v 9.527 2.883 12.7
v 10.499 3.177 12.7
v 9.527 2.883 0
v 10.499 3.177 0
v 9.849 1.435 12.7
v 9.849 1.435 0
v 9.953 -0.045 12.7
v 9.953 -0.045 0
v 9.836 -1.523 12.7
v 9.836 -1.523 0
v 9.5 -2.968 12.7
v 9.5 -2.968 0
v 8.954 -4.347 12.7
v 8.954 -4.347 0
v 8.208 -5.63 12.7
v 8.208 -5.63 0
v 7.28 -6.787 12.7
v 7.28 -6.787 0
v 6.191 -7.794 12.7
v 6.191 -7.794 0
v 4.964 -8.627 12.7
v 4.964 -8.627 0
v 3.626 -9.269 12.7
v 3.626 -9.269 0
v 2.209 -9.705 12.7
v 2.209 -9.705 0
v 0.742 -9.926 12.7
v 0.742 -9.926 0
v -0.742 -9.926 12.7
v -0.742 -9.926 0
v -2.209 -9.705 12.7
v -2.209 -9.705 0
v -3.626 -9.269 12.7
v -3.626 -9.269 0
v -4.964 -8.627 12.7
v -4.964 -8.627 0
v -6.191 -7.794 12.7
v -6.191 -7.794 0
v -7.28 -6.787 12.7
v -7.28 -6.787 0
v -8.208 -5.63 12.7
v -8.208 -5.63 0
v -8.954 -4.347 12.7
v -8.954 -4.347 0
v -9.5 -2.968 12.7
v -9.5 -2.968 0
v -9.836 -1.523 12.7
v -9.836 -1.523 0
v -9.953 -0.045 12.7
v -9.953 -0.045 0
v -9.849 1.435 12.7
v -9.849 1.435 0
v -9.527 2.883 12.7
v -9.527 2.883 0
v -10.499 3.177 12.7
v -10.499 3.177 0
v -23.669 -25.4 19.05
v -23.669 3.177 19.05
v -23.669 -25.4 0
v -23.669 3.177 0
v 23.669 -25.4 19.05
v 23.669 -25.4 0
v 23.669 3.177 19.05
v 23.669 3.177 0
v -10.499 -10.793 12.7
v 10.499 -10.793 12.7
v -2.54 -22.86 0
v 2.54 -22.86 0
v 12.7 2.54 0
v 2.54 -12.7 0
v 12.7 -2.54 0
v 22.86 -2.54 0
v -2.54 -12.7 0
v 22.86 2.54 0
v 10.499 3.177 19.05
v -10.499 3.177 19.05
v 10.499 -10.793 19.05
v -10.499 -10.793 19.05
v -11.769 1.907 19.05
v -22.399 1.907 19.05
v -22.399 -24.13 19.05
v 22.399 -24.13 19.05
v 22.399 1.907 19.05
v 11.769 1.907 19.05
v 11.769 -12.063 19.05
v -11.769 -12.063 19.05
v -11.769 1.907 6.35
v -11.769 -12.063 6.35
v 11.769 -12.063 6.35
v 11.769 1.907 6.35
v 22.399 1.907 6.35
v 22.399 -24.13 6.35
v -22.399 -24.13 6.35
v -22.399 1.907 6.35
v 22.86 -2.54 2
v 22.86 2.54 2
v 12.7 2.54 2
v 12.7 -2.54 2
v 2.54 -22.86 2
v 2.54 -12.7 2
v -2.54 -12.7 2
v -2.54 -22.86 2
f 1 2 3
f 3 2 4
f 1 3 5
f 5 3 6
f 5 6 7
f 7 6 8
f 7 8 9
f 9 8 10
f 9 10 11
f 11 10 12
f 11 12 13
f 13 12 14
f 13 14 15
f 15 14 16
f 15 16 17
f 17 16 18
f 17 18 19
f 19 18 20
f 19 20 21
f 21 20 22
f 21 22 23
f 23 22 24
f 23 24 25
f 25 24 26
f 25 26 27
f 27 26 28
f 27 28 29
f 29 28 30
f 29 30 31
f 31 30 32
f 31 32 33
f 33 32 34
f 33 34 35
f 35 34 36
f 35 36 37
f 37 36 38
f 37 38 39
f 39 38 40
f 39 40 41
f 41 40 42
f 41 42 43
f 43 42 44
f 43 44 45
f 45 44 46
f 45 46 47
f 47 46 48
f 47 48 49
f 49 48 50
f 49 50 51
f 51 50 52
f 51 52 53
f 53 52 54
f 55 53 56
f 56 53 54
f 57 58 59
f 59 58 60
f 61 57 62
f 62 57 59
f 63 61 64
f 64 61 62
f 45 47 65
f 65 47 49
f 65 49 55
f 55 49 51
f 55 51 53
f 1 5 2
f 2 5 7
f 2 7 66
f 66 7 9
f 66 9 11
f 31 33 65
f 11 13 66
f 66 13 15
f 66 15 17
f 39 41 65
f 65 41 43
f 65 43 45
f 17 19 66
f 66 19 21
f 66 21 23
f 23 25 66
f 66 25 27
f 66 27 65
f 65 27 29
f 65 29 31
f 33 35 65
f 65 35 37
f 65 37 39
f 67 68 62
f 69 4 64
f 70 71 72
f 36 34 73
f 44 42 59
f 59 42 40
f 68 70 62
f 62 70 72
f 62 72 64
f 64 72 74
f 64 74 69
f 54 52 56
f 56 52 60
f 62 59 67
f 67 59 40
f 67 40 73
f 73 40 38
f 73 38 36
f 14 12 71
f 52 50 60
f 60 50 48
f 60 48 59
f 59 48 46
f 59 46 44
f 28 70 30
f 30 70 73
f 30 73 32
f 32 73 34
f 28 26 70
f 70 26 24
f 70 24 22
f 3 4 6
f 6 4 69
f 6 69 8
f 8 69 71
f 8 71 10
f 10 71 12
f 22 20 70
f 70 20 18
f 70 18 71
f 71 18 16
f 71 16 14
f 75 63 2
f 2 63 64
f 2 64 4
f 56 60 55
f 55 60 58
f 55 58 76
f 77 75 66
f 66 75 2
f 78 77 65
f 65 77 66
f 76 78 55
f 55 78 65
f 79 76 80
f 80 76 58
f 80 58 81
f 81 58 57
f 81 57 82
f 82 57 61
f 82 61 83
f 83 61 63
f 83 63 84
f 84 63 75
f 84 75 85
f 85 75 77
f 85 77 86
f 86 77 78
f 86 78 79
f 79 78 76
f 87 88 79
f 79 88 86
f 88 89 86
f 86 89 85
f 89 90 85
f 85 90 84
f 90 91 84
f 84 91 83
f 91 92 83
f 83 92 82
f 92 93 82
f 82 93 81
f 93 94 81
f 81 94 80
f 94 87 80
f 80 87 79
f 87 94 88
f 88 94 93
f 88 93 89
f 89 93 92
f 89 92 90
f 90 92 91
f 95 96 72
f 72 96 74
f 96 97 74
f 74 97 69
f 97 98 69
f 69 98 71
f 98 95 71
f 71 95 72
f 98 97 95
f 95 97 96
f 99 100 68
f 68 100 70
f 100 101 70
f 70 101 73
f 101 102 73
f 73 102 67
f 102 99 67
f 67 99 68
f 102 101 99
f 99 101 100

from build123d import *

# Parameters (mm, degrees)
BOSS_EXTRUDE1_DEPTH = 12.7
SKETCH2_W           = 12.7
SKETCH2_H           = 12.7
BOSS_EXTRUDE2_DEPTH = 22.22735
BOSS_EXTRUDE3_DEPTH = 12.7
SKETCH4_W           = 12.7
SKETCH4_H           = 12.7
BOSS_EXTRUDE4_DEPTH = 22.22735
BOSS_EXTRUDE5_DEPTH = 12.7
BOSS_EXTRUDE6_DEPTH = 6.35
CUT_EXTRUDE1_DEPTH  = 12.7
SKETCH9_W           = 10.16
SKETCH9_H           = 5.08
SKETCH9_W_2         = 5.08
SKETCH9_H_2         = 10.16
CUT_EXTRUDE2_DEPTH  = 2


with BuildPart() as part:
    # Sketch1 → Boss-Extrude1 (new body)
    with BuildSketch(Plane.XY):
        with BuildLine():
            Line((10.499121608, 3.177349953), (9.526676859, 2.883058926))
            ThreePointArc((9.526676859, 2.883058926), (0, -9.953371325), (-9.526676859, 2.883058926))
            Line((-9.526676859, 2.883058926), (-10.499121608, 3.177349953))
            ThreePointArc((-10.499121608, 3.177349953), (-10.851172075, 1.605980037), (-10.969371325, 0))
            Line((-10.969371325, 0), (-10.969371325, -19.05))
            Line((-10.969371325, -19.05), (-23.669371325, -19.05))
            Line((-23.669371325, -19.05), (-23.669371325, -25.4))
            Line((-23.669371325, -25.4), (23.669371325, -25.4))
            Line((23.669371325, -25.4), (23.669371325, -19.05))
            Line((23.669371325, -19.05), (10.969371325, -19.05))
            Line((10.969371325, -19.05), (10.969371325, 0))
            ThreePointArc((10.969371325, 0), (10.851172075, 1.605980037), (10.499121608, 3.177349953))
        make_face()
    extrude(amount=BOSS_EXTRUDE1_DEPTH)

    # Sketch2 → Boss-Extrude2 (add)
    with BuildSketch(Plane(origin=(0, -19.05, 0), x_dir=(1, 0, 0), z_dir=(0, 1, 0))):
        with Locations((17.319371325, -6.35)):
            Rectangle(SKETCH2_W, SKETCH2_H)
    extrude(amount=BOSS_EXTRUDE2_DEPTH)

    # Sketch3 → Boss-Extrude3 (add, through all)
    with BuildSketch(Plane(origin=(0, 0, 0), x_dir=(-1, 0, 0), z_dir=(0, 0, -1))):
        with BuildLine():
            Line((-10.969371325, 0), (-10.969371325, 3.177349953))
            Line((-10.969371325, 3.177349953), (-10.499121608, 3.177349953))
            ThreePointArc((-10.499121608, 3.177349953), (-10.851172075, 1.605980037), (-10.969371325, 0))
        make_face()
    extrude(amount=-BOSS_EXTRUDE3_DEPTH)

    # Sketch4 → Boss-Extrude4 (add)
    with BuildSketch(Plane(origin=(0, -19.05, 0), x_dir=(1, 0, 0), z_dir=(0, 1, 0))):
        with Locations((-17.319371325, -6.35)):
            Rectangle(SKETCH4_W, SKETCH4_H)
    extrude(amount=BOSS_EXTRUDE4_DEPTH)

    # Sketch5 → Boss-Extrude5 (add, through all)
    with BuildSketch(Plane(origin=(0, 0, 0), x_dir=(-1, 0, 0), z_dir=(0, 0, -1))):
        with BuildLine():
            Line((10.969371325, 3.177349953), (10.969371325, 0))
            ThreePointArc((10.969371325, 0), (10.851172075, 1.605980037), (10.499121608, 3.177349953))
            Line((10.499121608, 3.177349953), (10.969371325, 3.177349953))
        make_face()
    extrude(amount=-BOSS_EXTRUDE5_DEPTH)

    # Sketch6 → Boss-Extrude6 (add)
    with BuildSketch(Plane.XY.offset(12.7)):
        Polygon((-23.669371325, 3.177349953), (-23.669371325, -25.4), (23.669371325, -25.4), (23.669371325, 3.177349953), (10.499121608, 3.177349953), (10.499121608, -10.792650047), (-10.499121608, -10.792650047), (-10.499121608, 3.177349953), align=None)
    extrude(amount=BOSS_EXTRUDE6_DEPTH)

    # Sketch7 → Cut-Extrude1 (cut)
    with BuildSketch(Plane.XY.offset(19.05)):
        Polygon((-11.769121608, 1.907349953), (-22.399371325, 1.907349953), (-22.399371325, -24.13), (22.399371325, -24.13), (22.399371325, 1.907349953), (11.769121608, 1.907349953), (11.769121608, -12.062650047), (-11.769121608, -12.062650047), align=None)
    extrude(amount=-CUT_EXTRUDE1_DEPTH, mode=Mode.SUBTRACT)

    # Sketch9 → Cut-Extrude2 (cut)
    with BuildSketch(Plane(origin=(0, 0, 0), x_dir=(-1, 0, 0), z_dir=(0, 0, -1))):
        with Locations((-17.78, 0)):
            Rectangle(SKETCH9_W, SKETCH9_H)
        with Locations((0, -17.78)):
            Rectangle(SKETCH9_W_2, SKETCH9_H_2)
    extrude(amount=-CUT_EXTRUDE2_DEPTH, mode=Mode.SUBTRACT)


solid = part.part
